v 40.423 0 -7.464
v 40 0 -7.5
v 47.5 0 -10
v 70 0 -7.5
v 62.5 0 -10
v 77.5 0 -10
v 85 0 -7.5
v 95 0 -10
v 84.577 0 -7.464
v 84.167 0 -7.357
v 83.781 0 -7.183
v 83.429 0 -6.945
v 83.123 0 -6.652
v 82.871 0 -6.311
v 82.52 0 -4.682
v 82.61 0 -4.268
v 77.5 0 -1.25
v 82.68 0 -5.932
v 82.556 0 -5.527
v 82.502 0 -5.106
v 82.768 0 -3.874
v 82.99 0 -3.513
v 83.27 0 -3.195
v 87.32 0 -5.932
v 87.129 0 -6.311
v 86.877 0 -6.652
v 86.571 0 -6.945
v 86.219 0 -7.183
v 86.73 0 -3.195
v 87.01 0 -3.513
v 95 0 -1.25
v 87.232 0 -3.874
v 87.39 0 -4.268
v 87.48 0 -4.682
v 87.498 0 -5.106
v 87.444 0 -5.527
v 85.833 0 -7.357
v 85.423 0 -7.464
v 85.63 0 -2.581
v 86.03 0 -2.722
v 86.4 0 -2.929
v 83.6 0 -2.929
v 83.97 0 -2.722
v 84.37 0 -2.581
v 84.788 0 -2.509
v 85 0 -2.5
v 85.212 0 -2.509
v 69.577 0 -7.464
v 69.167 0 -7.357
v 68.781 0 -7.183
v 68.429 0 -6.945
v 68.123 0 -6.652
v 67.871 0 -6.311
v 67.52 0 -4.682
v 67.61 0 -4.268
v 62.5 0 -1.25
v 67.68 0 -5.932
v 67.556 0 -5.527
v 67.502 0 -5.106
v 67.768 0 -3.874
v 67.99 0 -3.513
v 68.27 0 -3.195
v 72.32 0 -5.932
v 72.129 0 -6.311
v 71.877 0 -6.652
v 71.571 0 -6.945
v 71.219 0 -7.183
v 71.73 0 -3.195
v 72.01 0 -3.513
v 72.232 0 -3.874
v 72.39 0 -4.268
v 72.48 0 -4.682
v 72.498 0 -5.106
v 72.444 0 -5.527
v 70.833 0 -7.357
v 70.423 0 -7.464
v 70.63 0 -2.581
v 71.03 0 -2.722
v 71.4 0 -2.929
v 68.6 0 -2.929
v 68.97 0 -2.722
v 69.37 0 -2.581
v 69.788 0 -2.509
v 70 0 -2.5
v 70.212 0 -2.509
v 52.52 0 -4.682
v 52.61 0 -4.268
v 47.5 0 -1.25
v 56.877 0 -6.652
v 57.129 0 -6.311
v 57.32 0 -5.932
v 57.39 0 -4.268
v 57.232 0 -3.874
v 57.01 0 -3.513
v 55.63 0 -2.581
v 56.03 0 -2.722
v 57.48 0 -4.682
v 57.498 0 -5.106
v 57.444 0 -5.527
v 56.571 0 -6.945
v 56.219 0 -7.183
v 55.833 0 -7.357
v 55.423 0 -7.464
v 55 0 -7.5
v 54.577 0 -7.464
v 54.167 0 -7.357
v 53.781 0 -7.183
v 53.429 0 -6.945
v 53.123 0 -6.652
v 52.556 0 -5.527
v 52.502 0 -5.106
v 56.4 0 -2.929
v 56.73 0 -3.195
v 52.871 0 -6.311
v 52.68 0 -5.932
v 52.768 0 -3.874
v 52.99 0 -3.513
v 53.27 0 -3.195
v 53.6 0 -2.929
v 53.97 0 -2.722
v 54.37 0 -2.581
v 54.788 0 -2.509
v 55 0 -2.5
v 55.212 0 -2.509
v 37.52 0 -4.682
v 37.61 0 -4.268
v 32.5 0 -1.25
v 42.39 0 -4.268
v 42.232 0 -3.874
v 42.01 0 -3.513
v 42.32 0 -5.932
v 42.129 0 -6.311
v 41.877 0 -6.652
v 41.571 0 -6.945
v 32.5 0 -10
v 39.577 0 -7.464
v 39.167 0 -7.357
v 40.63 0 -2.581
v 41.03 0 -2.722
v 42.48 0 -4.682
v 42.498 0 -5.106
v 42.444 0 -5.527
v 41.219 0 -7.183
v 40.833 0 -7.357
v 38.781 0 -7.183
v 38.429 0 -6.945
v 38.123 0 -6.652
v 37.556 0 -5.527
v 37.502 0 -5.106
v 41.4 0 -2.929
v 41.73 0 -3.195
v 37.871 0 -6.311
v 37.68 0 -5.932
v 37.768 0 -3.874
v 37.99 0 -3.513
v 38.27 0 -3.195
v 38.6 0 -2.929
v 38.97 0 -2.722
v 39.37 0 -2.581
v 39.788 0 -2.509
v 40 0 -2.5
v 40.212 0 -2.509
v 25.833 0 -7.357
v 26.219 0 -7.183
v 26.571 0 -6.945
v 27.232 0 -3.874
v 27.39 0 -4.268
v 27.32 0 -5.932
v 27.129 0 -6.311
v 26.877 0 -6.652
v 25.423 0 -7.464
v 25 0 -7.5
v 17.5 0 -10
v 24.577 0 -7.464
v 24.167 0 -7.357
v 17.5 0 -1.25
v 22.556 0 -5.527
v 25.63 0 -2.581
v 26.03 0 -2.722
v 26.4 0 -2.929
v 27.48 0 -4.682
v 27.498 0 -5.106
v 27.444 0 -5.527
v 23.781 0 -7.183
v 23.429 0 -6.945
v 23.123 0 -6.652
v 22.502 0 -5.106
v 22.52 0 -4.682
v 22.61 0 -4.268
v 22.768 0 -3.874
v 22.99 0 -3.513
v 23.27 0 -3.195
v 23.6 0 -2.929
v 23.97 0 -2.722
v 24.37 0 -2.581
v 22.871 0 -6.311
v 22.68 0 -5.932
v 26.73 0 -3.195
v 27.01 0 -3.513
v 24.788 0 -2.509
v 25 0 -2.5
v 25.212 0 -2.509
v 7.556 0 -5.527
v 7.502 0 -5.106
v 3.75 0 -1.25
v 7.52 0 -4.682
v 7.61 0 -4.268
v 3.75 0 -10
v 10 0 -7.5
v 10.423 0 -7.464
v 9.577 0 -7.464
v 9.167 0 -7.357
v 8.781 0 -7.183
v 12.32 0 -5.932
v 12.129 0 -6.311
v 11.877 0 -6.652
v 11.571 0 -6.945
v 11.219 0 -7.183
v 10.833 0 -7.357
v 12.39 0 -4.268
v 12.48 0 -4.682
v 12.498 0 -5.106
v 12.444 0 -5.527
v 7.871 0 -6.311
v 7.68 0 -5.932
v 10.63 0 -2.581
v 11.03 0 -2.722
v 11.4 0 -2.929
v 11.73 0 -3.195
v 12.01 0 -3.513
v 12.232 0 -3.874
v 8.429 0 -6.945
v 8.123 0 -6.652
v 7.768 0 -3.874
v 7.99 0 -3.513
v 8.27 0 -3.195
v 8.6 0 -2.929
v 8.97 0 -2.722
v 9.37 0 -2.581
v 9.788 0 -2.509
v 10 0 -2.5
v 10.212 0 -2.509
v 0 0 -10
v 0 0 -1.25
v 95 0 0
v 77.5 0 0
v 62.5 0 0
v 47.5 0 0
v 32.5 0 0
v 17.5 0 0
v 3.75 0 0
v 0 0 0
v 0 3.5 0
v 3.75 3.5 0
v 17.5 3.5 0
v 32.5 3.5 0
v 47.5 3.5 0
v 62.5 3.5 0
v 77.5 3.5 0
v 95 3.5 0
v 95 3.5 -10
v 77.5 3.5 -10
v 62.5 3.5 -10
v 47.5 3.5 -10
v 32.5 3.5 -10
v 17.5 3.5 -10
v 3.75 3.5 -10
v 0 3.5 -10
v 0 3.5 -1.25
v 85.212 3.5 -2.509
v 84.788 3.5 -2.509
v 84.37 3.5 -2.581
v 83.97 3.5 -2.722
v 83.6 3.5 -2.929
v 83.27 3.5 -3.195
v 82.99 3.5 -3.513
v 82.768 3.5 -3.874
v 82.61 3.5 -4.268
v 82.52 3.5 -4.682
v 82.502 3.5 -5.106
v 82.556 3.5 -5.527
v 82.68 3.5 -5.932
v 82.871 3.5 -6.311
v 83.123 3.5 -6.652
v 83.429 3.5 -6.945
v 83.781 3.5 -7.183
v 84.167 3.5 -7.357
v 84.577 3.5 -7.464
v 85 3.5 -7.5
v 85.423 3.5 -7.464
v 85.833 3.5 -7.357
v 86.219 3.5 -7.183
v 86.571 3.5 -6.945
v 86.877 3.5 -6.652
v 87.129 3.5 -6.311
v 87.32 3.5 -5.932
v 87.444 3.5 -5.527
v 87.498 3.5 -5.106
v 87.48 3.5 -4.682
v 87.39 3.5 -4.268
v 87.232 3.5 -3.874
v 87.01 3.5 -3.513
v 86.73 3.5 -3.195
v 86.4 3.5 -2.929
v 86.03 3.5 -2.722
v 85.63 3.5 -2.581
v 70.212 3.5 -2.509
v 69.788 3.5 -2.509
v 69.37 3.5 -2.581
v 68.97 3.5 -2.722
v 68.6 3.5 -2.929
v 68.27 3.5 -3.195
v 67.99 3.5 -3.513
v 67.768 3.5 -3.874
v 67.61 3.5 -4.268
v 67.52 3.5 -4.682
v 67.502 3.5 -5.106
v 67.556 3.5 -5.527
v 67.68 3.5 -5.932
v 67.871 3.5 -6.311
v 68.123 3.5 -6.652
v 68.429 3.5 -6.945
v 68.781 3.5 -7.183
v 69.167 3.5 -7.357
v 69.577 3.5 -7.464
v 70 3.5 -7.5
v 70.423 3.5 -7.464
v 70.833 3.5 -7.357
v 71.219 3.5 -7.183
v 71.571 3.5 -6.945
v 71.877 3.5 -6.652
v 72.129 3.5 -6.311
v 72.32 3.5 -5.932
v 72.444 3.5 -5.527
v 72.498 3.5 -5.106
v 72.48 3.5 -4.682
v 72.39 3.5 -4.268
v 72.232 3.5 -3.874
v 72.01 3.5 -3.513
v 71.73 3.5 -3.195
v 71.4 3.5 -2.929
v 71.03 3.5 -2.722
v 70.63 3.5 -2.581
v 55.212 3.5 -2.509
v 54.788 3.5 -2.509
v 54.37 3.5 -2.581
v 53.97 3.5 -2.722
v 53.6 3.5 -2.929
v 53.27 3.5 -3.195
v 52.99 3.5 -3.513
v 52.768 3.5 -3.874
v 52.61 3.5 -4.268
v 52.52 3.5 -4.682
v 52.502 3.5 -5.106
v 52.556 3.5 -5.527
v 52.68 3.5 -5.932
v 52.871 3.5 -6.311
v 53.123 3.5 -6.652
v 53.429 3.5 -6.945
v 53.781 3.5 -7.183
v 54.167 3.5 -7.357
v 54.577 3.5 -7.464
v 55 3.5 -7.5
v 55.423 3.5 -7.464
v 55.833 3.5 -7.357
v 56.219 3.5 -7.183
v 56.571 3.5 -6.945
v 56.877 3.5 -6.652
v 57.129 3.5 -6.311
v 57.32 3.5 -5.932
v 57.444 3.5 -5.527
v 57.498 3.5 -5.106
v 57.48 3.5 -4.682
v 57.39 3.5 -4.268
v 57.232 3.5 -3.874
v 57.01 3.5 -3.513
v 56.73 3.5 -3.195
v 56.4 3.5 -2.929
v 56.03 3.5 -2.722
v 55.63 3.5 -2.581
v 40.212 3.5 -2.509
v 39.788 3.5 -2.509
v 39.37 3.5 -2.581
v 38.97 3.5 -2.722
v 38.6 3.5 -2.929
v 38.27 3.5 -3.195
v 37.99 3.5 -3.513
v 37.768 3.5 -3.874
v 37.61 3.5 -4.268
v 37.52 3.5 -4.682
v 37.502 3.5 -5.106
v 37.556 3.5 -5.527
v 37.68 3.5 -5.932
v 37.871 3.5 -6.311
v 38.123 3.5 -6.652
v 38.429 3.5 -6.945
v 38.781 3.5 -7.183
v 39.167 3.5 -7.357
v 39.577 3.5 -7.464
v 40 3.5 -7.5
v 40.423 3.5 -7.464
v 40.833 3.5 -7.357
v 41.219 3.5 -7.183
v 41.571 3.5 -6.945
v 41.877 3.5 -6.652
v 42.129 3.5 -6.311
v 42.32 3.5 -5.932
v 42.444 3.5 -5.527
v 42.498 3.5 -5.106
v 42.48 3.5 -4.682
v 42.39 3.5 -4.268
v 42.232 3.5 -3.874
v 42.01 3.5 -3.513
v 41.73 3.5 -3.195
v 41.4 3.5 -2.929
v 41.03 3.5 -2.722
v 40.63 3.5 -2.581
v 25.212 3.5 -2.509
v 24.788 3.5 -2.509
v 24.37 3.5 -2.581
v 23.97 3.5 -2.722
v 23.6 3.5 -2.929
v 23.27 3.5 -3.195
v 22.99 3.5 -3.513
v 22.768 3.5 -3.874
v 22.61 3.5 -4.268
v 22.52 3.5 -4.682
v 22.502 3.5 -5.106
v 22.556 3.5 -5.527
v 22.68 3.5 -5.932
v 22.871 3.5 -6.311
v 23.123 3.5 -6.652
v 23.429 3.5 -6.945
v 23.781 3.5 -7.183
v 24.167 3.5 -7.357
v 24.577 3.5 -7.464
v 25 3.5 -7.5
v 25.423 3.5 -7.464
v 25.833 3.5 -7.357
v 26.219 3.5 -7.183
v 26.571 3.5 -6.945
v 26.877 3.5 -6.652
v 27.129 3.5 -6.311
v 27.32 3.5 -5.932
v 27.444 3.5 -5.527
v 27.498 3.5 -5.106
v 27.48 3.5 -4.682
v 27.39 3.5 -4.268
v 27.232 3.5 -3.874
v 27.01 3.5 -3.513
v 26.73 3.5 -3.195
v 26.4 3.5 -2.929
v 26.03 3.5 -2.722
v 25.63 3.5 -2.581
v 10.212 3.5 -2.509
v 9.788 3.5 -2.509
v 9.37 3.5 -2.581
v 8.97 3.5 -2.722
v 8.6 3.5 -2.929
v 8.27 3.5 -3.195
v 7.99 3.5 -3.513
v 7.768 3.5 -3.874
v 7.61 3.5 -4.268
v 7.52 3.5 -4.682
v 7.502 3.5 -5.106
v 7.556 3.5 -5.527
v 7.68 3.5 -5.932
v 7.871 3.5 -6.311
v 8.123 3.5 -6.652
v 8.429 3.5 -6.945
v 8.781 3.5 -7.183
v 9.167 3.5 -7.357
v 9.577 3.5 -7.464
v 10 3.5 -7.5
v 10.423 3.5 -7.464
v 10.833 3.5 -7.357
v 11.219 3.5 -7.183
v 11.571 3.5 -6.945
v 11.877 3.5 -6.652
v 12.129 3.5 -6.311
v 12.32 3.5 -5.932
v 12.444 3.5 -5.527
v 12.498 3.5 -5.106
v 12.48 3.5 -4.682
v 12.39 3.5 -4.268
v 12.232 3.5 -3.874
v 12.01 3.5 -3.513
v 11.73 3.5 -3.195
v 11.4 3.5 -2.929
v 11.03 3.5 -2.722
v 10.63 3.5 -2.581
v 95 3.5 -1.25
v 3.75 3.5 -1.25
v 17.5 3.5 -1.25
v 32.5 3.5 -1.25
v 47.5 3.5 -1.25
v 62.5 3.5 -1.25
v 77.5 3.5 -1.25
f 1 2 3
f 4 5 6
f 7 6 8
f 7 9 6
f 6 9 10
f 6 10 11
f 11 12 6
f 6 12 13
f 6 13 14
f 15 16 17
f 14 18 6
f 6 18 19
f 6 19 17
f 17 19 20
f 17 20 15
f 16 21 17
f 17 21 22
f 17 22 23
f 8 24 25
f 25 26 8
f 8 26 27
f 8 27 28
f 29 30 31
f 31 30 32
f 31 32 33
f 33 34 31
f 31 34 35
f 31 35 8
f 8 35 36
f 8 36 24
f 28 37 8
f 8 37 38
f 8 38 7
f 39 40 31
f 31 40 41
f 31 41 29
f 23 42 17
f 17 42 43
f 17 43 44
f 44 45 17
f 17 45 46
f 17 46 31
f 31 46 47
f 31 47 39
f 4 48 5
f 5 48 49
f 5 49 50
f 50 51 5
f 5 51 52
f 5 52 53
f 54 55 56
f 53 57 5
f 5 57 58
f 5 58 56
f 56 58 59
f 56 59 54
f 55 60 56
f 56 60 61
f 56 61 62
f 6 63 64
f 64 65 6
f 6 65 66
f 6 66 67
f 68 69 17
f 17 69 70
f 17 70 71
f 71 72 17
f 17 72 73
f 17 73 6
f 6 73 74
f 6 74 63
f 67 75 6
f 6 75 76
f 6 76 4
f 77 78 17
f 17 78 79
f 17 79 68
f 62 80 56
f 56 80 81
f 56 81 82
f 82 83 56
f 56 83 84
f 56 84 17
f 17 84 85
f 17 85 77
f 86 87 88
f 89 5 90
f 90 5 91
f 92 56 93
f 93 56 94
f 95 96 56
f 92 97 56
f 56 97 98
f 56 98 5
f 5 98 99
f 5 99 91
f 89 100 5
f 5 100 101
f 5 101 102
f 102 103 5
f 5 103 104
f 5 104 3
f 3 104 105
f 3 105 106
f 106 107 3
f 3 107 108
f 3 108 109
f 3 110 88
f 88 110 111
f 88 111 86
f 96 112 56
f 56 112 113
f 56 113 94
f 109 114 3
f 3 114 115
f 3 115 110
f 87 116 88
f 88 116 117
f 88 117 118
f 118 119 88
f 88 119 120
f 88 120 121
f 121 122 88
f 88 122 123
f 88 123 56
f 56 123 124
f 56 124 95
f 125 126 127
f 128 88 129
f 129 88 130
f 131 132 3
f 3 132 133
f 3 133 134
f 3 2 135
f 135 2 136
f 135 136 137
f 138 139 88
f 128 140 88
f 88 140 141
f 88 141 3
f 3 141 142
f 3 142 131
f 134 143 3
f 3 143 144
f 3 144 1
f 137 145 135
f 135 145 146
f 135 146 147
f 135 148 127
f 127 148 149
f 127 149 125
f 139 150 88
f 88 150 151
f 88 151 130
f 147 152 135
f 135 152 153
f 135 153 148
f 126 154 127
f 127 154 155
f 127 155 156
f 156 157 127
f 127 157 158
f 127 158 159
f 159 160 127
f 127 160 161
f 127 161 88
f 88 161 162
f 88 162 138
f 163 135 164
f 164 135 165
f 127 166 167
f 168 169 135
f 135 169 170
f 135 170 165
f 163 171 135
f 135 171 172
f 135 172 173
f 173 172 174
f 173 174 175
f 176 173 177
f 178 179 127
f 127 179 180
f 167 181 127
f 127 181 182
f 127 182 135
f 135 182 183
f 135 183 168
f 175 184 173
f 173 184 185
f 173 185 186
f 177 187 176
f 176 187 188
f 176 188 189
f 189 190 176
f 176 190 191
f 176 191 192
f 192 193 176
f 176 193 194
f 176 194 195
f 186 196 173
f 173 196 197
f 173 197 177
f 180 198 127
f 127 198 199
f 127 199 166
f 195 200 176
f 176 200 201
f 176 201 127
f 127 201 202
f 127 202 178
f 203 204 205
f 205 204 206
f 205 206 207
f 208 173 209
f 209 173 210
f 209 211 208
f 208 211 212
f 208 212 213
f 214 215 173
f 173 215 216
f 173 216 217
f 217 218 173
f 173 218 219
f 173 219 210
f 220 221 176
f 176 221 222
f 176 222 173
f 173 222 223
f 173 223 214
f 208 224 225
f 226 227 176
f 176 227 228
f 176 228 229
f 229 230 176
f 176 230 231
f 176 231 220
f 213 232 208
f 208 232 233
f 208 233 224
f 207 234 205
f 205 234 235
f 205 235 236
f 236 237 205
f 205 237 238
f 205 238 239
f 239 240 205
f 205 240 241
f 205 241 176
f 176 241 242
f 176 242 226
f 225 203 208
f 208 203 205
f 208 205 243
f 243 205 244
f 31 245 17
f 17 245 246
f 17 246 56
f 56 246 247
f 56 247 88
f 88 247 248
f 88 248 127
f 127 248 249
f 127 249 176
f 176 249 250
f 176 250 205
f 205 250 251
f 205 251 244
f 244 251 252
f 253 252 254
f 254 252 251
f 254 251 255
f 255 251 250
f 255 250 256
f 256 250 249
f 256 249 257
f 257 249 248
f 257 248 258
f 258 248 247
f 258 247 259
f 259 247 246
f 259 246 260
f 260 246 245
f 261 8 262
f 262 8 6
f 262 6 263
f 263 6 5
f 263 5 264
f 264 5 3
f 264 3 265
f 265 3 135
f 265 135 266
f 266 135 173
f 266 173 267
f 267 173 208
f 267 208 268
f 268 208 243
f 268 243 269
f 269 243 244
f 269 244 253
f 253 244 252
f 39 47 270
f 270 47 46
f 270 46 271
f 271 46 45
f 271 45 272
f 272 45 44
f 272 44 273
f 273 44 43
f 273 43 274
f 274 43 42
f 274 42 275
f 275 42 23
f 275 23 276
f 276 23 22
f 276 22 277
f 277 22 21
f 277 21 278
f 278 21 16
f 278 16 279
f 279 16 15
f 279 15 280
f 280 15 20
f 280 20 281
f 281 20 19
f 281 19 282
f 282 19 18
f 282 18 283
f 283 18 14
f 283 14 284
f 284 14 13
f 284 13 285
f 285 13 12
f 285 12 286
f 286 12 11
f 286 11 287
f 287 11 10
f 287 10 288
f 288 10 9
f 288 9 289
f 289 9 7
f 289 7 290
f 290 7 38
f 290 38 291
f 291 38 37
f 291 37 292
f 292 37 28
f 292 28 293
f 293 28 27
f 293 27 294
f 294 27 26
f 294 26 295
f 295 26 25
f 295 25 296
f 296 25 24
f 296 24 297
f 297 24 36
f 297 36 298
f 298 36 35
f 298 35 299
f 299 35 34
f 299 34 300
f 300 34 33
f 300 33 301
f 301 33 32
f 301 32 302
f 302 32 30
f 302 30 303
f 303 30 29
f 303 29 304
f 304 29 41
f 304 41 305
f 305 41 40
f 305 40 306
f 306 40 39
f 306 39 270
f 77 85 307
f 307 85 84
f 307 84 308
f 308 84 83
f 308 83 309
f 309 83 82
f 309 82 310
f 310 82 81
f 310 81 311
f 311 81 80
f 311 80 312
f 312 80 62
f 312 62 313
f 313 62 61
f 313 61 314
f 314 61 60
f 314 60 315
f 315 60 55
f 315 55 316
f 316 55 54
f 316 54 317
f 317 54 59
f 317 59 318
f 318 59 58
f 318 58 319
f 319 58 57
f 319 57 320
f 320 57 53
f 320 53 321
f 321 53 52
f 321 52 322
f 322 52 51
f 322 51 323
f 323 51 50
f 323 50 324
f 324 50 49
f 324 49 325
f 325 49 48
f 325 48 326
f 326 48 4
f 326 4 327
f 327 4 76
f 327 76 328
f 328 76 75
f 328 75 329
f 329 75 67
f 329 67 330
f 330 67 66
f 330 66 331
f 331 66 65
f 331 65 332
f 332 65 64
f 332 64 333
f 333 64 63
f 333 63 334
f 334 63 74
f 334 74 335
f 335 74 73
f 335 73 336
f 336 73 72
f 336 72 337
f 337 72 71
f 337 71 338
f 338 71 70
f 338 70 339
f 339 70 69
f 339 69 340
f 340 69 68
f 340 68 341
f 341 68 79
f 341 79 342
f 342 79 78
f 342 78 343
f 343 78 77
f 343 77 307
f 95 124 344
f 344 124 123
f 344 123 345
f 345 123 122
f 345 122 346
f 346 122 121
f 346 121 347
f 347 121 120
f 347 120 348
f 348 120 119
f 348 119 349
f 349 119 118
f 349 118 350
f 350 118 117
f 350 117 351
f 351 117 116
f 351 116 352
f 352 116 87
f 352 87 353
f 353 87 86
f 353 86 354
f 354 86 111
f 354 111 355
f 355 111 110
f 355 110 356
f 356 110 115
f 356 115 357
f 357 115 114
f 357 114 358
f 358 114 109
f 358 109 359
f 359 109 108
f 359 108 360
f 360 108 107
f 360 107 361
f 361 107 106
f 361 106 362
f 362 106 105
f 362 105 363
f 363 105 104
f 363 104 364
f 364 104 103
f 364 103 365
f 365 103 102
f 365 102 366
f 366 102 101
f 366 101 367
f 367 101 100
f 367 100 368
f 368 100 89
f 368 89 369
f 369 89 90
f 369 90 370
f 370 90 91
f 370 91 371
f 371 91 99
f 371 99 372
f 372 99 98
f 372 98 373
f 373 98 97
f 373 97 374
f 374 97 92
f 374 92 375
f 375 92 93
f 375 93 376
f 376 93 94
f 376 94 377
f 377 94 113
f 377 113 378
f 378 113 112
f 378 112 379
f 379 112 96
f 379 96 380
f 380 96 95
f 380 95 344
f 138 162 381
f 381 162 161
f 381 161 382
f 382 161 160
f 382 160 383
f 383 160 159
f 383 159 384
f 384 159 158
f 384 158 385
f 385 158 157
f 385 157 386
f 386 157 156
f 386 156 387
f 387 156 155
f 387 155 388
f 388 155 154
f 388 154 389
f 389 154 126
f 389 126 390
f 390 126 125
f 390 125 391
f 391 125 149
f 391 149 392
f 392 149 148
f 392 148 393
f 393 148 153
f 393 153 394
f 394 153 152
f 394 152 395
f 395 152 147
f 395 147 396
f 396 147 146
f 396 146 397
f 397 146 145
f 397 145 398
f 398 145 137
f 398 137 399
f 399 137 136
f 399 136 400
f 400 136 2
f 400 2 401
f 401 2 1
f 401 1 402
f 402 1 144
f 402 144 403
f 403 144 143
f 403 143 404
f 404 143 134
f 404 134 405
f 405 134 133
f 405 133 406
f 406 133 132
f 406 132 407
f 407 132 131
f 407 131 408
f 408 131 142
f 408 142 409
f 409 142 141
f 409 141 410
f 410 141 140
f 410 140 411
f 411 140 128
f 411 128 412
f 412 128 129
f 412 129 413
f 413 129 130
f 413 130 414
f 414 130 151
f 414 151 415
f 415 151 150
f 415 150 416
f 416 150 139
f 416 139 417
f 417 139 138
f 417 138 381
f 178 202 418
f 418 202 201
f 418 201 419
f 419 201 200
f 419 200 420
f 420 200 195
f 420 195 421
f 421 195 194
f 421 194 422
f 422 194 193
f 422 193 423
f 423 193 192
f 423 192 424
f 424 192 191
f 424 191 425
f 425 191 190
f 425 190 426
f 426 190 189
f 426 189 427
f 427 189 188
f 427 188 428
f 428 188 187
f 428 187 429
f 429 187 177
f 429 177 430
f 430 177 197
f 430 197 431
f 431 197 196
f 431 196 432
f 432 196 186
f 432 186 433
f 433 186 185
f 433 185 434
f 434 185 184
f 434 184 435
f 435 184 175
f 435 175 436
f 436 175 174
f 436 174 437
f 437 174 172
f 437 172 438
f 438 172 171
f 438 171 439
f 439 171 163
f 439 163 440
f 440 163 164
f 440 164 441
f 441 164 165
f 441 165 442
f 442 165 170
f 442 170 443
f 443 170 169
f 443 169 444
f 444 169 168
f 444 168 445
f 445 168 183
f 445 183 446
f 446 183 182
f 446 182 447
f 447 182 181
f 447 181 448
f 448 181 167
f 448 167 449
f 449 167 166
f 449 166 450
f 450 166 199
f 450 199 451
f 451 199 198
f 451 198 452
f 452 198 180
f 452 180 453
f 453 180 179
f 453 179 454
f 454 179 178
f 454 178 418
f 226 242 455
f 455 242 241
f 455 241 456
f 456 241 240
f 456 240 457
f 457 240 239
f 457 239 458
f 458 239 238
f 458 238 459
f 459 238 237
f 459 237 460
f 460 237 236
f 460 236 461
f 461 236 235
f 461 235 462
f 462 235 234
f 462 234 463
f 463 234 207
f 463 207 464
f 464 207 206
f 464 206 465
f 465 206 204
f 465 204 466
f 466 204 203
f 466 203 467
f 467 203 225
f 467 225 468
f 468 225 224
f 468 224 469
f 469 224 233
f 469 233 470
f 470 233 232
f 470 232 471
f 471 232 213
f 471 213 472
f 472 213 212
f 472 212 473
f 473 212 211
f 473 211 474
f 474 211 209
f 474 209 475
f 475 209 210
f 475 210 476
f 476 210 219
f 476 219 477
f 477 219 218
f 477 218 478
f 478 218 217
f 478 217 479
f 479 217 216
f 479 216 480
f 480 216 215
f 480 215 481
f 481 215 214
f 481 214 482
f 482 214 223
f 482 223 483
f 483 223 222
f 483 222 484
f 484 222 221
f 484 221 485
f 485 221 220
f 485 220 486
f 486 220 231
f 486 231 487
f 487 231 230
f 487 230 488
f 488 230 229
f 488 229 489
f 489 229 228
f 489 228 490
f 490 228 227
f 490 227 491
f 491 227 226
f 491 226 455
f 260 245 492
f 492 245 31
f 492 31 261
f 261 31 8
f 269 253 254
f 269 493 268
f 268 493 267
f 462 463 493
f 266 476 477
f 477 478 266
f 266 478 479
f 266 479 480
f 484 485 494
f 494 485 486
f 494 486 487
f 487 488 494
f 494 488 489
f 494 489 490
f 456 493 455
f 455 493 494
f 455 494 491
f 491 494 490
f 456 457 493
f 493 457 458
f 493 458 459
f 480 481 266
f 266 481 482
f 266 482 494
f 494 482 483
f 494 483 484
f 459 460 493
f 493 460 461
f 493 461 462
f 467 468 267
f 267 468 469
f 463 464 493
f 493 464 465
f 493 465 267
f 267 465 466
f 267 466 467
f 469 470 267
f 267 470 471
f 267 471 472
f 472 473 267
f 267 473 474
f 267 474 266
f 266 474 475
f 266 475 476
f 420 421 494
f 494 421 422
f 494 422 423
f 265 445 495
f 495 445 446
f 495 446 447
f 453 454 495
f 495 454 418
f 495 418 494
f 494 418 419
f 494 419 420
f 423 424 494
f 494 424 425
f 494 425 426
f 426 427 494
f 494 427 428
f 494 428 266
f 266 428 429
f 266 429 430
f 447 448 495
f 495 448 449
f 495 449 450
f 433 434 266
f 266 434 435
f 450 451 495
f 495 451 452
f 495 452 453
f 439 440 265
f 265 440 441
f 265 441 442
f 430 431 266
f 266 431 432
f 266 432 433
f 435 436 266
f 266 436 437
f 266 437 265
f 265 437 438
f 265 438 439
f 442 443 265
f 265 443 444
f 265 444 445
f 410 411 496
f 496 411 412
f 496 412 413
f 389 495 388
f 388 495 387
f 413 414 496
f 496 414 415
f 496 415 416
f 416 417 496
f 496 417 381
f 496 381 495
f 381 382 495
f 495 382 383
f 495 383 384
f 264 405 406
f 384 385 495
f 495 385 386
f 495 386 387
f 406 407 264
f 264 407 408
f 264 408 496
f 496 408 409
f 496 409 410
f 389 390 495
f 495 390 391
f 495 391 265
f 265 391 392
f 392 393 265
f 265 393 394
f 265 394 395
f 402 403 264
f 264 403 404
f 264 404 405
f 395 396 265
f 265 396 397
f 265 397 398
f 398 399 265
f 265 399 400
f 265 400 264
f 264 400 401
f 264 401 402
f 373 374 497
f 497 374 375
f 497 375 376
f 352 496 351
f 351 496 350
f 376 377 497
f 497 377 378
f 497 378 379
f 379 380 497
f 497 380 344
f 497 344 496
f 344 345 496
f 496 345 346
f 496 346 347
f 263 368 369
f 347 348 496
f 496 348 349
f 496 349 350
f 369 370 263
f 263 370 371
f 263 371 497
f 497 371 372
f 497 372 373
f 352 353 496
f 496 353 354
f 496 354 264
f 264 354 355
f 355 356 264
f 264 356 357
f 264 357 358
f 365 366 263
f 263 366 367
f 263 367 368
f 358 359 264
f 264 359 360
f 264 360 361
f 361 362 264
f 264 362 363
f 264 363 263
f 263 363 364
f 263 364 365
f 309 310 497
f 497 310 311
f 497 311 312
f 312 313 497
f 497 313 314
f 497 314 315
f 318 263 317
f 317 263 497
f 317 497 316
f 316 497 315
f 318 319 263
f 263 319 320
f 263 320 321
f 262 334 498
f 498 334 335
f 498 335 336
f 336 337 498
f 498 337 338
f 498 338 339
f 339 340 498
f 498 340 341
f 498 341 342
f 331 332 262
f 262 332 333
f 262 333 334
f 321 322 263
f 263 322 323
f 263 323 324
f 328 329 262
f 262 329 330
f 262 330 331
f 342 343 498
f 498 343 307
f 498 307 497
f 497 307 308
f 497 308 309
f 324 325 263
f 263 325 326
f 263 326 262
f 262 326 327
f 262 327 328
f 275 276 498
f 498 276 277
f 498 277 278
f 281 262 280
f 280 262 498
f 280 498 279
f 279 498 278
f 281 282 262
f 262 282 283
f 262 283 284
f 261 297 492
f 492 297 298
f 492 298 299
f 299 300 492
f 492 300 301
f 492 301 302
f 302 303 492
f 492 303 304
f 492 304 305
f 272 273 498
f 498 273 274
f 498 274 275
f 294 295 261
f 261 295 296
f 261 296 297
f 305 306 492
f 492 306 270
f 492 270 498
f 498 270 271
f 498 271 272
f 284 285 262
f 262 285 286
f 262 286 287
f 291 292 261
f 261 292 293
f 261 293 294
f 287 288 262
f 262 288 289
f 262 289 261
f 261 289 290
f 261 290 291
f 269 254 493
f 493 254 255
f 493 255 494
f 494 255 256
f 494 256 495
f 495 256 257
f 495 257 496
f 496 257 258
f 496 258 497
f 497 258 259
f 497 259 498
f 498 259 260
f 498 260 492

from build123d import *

# Parameters (mm, degrees)
SKETCH1_W           = 150
SKETCH1_H           = 10
SKETCH1_R           = 2.5
BOSS_EXTRUDE1_DEPTH = 6
SKETCH2_W           = 10
SKETCH2_H           = 6
CUT_EXTRUDE1_DEPTH  = 55
SKETCH3_W           = 95
SKETCH3_H           = 10
CUT_EXTRUDE2_DEPTH  = 2.5


with BuildPart() as part:
    # Sketch1 → Boss-Extrude1 (new body)
    with BuildSketch(Plane(origin=(0, 0, 0), x_dir=(1, 0, 0), z_dir=(0, 1, 0))):
        with Locations((75, 5)):
            Rectangle(SKETCH1_W, SKETCH1_H)
        with Locations(Location((145, 5, 0), (0, 0, 270))):
            Circle(SKETCH1_R, mode=Mode.SUBTRACT)
        with Locations(Location((130, 5, 0), (0, 0, 270))):
            Circle(SKETCH1_R, mode=Mode.SUBTRACT)
        with Locations(Location((115, 5, 0), (0, 0, 270))):
            Circle(SKETCH1_R, mode=Mode.SUBTRACT)
        with Locations(Location((100, 5, 0), (0, 0, 270))):
            Circle(SKETCH1_R, mode=Mode.SUBTRACT)
        with Locations(Location((85, 5, 0), (0, 0, 270))):
            Circle(SKETCH1_R, mode=Mode.SUBTRACT)
        with Locations(Location((70, 5, 0), (0, 0, 270))):
            Circle(SKETCH1_R, mode=Mode.SUBTRACT)
        with Locations(Location((55, 5, 0), (0, 0, 270))):
            Circle(SKETCH1_R, mode=Mode.SUBTRACT)
        with Locations(Location((40, 5, 0), (0, 0, 270))):
            Circle(SKETCH1_R, mode=Mode.SUBTRACT)
        with Locations(Location((25, 5, 0), (0, 0, 270))):
            Circle(SKETCH1_R, mode=Mode.SUBTRACT)
        with Locations(Location((10, 5, 0), (0, 0, 270))):
            Circle(SKETCH1_R, mode=Mode.SUBTRACT)
    extrude(amount=BOSS_EXTRUDE1_DEPTH)

    # Sketch2 → Cut-Extrude1 (cut)
    with BuildSketch(Plane(origin=(150, 0, 0), x_dir=(0, 0, -1), z_dir=(1, 0, 0))):
        with Locations((5, 3)):
            Rectangle(SKETCH2_W, SKETCH2_H)
    extrude(amount=-CUT_EXTRUDE1_DEPTH, mode=Mode.SUBTRACT)

    # Sketch3 → Cut-Extrude2 (cut)
    with BuildSketch(Plane(origin=(0, 6, 0), x_dir=(1, 0, 0), z_dir=(0, 1, 0))):
        with Locations((47.5, 5)):
            Rectangle(SKETCH3_W, SKETCH3_H)
    extrude(amount=-CUT_EXTRUDE2_DEPTH, mode=Mode.SUBTRACT)


solid = part.part
